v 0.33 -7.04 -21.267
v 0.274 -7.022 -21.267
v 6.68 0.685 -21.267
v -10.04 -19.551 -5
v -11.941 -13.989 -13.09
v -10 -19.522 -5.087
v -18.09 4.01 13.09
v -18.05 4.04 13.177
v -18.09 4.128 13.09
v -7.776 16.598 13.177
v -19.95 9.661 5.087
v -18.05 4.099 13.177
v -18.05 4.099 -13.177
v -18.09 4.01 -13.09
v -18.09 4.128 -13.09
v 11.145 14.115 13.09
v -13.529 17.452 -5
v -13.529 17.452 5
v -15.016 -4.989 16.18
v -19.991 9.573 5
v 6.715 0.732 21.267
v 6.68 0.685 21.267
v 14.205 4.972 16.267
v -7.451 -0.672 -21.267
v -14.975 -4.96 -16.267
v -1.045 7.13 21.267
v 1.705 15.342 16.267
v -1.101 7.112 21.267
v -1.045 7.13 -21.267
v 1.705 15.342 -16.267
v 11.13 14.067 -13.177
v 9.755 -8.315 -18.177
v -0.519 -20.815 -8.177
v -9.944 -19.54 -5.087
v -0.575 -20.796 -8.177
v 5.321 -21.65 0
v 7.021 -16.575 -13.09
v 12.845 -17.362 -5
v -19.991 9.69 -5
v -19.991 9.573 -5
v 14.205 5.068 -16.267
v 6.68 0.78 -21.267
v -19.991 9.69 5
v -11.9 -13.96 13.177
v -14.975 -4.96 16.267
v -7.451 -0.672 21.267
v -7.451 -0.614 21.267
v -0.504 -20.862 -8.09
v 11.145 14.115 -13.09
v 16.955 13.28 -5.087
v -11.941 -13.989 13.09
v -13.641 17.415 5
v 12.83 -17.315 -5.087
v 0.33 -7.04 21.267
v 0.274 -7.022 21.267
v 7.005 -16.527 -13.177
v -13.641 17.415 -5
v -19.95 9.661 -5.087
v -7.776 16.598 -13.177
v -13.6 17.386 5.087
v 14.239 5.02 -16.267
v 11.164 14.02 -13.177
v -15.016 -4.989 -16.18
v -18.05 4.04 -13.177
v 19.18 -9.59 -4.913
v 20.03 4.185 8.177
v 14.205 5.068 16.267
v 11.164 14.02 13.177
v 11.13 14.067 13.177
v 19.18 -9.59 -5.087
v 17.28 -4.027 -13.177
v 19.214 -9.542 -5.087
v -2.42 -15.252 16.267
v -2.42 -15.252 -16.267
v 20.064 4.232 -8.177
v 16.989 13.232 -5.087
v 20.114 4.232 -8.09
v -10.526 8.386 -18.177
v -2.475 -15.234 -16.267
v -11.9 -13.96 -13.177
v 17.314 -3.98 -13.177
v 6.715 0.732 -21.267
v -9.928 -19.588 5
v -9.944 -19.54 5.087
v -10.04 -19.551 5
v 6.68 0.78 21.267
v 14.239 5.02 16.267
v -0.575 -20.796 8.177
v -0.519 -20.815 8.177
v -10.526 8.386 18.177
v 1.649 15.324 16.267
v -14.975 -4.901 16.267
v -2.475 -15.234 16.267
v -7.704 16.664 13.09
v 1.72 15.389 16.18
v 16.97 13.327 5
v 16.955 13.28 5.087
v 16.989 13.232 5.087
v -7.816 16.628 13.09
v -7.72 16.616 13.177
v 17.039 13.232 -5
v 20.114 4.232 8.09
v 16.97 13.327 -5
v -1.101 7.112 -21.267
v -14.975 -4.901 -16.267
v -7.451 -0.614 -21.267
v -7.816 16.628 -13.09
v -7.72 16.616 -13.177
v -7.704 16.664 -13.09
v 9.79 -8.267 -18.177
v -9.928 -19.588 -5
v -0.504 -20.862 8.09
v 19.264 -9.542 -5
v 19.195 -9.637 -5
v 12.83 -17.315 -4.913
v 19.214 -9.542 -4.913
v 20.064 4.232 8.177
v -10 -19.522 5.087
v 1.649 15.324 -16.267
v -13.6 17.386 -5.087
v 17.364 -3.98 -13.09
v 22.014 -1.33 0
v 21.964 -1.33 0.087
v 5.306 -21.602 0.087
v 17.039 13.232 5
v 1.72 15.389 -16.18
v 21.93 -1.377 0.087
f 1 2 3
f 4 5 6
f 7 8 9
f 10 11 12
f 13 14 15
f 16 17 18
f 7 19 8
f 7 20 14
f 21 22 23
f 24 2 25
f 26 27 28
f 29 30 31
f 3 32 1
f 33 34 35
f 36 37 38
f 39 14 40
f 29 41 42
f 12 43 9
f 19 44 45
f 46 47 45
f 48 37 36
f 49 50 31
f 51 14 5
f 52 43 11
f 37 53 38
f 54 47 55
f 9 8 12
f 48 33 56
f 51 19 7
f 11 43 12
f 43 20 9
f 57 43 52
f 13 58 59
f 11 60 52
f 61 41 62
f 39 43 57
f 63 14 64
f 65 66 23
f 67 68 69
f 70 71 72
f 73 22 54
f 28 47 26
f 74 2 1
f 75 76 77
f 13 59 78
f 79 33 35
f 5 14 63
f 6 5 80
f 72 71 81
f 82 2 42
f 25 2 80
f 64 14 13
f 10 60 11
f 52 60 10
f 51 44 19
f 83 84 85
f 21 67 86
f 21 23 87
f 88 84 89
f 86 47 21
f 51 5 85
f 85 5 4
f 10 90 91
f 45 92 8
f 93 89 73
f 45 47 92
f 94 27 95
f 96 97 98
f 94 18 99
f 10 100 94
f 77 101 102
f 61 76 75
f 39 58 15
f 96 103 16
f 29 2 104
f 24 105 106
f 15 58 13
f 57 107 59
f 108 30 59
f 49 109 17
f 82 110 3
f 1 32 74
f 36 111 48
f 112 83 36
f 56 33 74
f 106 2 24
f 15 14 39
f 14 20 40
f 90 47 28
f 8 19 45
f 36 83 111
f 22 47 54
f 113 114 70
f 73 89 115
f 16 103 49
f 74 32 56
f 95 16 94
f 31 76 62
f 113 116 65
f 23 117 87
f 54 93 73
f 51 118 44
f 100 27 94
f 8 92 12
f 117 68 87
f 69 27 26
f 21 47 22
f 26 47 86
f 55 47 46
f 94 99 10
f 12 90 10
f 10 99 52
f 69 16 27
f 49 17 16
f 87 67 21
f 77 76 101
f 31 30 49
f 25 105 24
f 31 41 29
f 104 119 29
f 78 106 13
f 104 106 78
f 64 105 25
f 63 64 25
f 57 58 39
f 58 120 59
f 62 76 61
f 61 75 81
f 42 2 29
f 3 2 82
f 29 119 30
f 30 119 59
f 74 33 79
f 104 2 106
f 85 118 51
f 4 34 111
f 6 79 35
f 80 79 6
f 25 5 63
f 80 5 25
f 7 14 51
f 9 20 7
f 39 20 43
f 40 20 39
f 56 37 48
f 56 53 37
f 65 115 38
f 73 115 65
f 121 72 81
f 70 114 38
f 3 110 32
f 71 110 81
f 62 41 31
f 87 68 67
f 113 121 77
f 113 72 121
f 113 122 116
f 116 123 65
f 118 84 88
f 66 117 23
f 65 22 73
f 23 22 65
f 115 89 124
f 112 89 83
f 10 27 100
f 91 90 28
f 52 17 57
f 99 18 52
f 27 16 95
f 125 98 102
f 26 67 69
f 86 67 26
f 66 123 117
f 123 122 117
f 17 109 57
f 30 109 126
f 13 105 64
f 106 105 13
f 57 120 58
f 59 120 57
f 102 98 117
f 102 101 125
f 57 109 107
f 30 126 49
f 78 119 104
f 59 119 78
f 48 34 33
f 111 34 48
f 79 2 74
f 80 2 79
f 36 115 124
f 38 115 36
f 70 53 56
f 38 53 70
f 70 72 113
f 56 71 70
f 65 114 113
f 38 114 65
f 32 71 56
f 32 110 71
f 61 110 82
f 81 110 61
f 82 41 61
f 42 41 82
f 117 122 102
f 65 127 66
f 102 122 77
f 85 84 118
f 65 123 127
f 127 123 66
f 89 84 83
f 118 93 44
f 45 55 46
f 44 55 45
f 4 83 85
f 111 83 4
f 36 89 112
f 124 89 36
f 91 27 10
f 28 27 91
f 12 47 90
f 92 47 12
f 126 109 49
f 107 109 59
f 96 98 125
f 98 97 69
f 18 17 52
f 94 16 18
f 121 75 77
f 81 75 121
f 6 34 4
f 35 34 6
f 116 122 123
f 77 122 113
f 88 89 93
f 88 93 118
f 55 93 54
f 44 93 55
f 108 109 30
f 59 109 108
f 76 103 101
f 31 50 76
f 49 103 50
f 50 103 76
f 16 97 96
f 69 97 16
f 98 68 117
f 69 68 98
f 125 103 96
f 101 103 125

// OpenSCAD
// Auto-generated OpenSCAD file

    inner_points = 10*[[0.03149424619031844, -0.6992864879444639, 2.118033988749915], [0.03149424617314351, -0.6992864879462605, -2.118033988749875], [-0.741026938557207, -0.06429749660974819, 2.1180339887527775], [-0.741026938574382, -0.06429749661154475, -2.1180339887470123], [0.6664832375250342, 0.07323469680306156, 2.1180339887470123], [0.6664832375078593, 0.073234696801265, -2.1180339887527775], [-0.10603794722249132, 0.7082236881377774, 2.118033988749875], [-0.10603794723966625, 0.7082236881359808, -2.118033988749915], [-0.9959395242778242, -1.9492520218959832, 0.5000000000047155], [-0.9959395242818789, -1.9492520218964078, -0.49999999999528455], [1.6939170079800567, 1.3232002307532087, 0.49999999999242173], [1.693917007976002, 1.3232002307527841, -0.5000000000075783], [1.2814597801305372, -1.726720258407157, -0.5000000000046125], [-1.9909924725146007, 0.9631362738511482, 0.5000000000075147], [-1.9909924725186547, 0.9631362738507241, -0.49999999999248534], [1.916448771465253, -0.9541990736596313, -0.5000000000075147], [-1.356003481179885, 1.7356574585986737, 0.5000000000046125], [-1.356003481183939, 1.7356574585982496, -0.49999999999538747], [0.9739715088171708, -0.8267427808031579, -1.809016994378695], [-1.0485152098665185, 0.8356799809946748, 1.809016994378695], [-1.0485152098811878, 0.8356799809931404, -1.8090169943712], [-1.1859777270848737, -1.3930353516266287, 1.3090169943801975], [-1.1859777270954883, -1.393035351627739, -1.3090169943696974], [1.1114340260461406, 1.4019725518192556, 1.3090169943696974], [1.111434026035526, 1.4019725518181454, -1.3090169943801975], [0.5290207203001192, -2.155480635818928, -1.3799625129733234e-12], [2.1914434820964175, -0.13299391712056935, -8.977904296875527e-12], [-0.24350046444084633, -1.5204916444835261, 1.6180339887513777], [-0.24350046445396684, -1.5204916444848984, -1.618033988748412], [-1.4934659983916794, -0.4930578740219434, 1.61803398875601], [-1.4934659984047998, -0.49305787402331586, -1.6180339887437798], [1.418922297355452, 0.5019950742148327, 1.6180339887437798], [1.4189222973423317, 0.5019950742134602, -1.61803398875601], [0.16895676340461901, 1.529428844676415, 1.618033988748412], [0.1689567633914985, 1.5294288446750428, -1.6180339887513777], [-0.05346226163379702, -2.0767083147528806, 0.8090169943758957], [-0.053462261640357105, -2.0767083147535668, -0.8090169943739992], [2.001405279289368, 0.4232227531487855, 0.8090169943665041], [2.001405279282808, 0.4232227531480994, -0.8090169943833908], [0.6989767981900609, -1.6479479373417958, -1.3090169943772316], [-1.8009542697009913, 0.4069196035824795, 1.3090169943819274], [-1.8009542697116054, 0.4069196035813693, -1.3090169943679675], [1.7264105686516436, -0.39798240339096275, -1.3090169943819274], [-0.7735204992394086, 1.6568851375333125, 1.3090169943772316], [-0.773520499250023, 1.6568851375322022, -1.3090169943726633]];

    outer_points = 10*[[-1.371336447205841, 1.7395979495788785, 0.28160841586432317], [1.840844013022788, -0.9711587981091819, 0.8088336578512769], [-2.0028099882397674, 0.9711587981091819, 0.17796268530774234], [1.2093704719888618, -1.7395979495788785, 0.705187927294696], [-1.2093704719888618, 1.7395979495788785, -0.705187927294696], [2.0028099882397674, -0.9711587981091819, -0.17796268530774234], [-1.840844013022788, 0.9711587981091819, -0.8088336578512769], [1.371336447205841, -1.7395979495788785, -0.28160841586432317], [-0.4064591423188801, 0.7041810071951622, 2.079660561781849], [0.35183380229163597, 0.06425814427453419, 2.2041215583445464], [0.27963973874229003, 0.7041810071951622, -2.1004758277879656], [1.037932683352806, 0.06425814427453419, -1.9760148312252683], [1.6356459076028755, 1.3076188096386316, 0.77515384996851], [-1.7976118828198546, -1.3076188096386316, 0.21164249319050915], [-1.0393189382093386, -1.9475416725592598, 0.33610348975320653], [1.7976118828198546, 1.3076188096386316, -0.21164249319050915], [-1.6356459076028755, -1.3076188096386316, -0.77515384996851], [-0.8773529629923593, -1.9475416725592598, -0.6506928534058127], [2.1983744202265796, -0.15173142569558906, 0.36082608061173255], [-2.1983744202265796, 0.15173142569558906, -0.36082608061173255], [0.5451552268035095, -2.163531242529383, 0.08947803522579041], [-1.285617552887813, 0.837669902652172, 1.6222097951243055], [0.6996191495317593, -0.837669902652172, 1.948052914399131], [-0.6996191495317593, 0.837669902652172, -1.948052914399131], [1.285617552887813, -0.837669902652172, -1.6222097951243055], [0.9303301531589606, 1.3901194841517452, 1.47923007115347], [1.3543625812980353, 1.3901194841517452, -1.104236295210947], [-0.9280871456840218, 1.6570972750657649, 1.174202217884761], [1.525800369934091, -0.41373660970166726, 1.5769664633090175], [-1.9498327980731658, 0.41373660970166726, 1.0064999030553996], [0.5040547175449472, -1.6570972750657649, 1.409264148479656], [-0.5040547175449472, 1.6570972750657649, -1.409264148479656], [1.9498327980731658, -0.41373660970166726, -1.0064999030553996], [-1.525800369934091, 0.41373660970166726, -1.5769664633090175], [0.9280871456840218, -1.6570972750657649, -1.174202217884761], [-0.04892873511508877, 1.523608379608755, 1.631652984542305], [1.1780150226939676, 0.4881914372250389, 1.833035107254433], [0.47520417072910215, 1.523608379608755, -1.5616870618684908], [1.7021479285381587, 0.4881914372250389, -1.3603049391563626], [1.8833307771378829, 0.4056907627119256, 1.128958886069473], [-2.145397230059978, -0.4056907627119256, 0.46771113713592477], [-0.16016052764040542, -2.0810305680162697, 0.7935542564107504], [2.145397230059978, 0.4056907627119256, -0.46771113713592477], [-1.8833307771378829, -0.4056907627119256, -1.128958886069473], [0.10190592528169004, -2.0810305680162697, -0.8031157667946475]];

    // Convex hull for inner set (I)
    module inner_hull() {
        hull() {
            for (p = inner_points) {
                translate(p) sphere(r=0.1);
            }
        }
    }

    // Convex hull for outer set (O) minus inner hull (O \ I)
    module outer_minus_inner() {
        difference() {
            hull() {
                for (p = outer_points) {
                    translate(p) sphere(r=0.1);
                }
            }
            inner_hull(); // Subtract inner hull
        }
    }

    // Convex hull for outer set (O) minus all translated inner hulls
    module outer_minus_AllTranslationInner() {
        difference() {
            hull() {
                for (p = outer_points) {
                    translate(p) sphere(r=0.1);
                }
            }
            hull() {
                translate([0,0,50]) inner_hull();
                translate([0,0,-50]) inner_hull();
            }; // Subtract translated inner hulls
        }
    }

    // Difference between outer_minus_inner and outer_minus_AllTranslationInner
    module outer_minus_inner_diff() {
        difference() {
            // Outer minus inner
            difference() {
                hull() {
                    for (p = outer_points) {
                        translate(p) sphere(r=0.1);
                    }
                }
                inner_hull();
            }

            // Subtract Outer minus AllTranslationInner
            difference() {
                hull() {
                    for (p = outer_points) {
                        translate(p) sphere(r=0.1);
                    }
                }
                hull() {
                    translate([0,0,50]) inner_hull();
                    translate([0,0,-50]) inner_hull();
                };
            }
        }
    }

    // Rendering all with colors applied
    color([1, 0, 0, 0.5]) inner_hull(); // Transparent red
    
